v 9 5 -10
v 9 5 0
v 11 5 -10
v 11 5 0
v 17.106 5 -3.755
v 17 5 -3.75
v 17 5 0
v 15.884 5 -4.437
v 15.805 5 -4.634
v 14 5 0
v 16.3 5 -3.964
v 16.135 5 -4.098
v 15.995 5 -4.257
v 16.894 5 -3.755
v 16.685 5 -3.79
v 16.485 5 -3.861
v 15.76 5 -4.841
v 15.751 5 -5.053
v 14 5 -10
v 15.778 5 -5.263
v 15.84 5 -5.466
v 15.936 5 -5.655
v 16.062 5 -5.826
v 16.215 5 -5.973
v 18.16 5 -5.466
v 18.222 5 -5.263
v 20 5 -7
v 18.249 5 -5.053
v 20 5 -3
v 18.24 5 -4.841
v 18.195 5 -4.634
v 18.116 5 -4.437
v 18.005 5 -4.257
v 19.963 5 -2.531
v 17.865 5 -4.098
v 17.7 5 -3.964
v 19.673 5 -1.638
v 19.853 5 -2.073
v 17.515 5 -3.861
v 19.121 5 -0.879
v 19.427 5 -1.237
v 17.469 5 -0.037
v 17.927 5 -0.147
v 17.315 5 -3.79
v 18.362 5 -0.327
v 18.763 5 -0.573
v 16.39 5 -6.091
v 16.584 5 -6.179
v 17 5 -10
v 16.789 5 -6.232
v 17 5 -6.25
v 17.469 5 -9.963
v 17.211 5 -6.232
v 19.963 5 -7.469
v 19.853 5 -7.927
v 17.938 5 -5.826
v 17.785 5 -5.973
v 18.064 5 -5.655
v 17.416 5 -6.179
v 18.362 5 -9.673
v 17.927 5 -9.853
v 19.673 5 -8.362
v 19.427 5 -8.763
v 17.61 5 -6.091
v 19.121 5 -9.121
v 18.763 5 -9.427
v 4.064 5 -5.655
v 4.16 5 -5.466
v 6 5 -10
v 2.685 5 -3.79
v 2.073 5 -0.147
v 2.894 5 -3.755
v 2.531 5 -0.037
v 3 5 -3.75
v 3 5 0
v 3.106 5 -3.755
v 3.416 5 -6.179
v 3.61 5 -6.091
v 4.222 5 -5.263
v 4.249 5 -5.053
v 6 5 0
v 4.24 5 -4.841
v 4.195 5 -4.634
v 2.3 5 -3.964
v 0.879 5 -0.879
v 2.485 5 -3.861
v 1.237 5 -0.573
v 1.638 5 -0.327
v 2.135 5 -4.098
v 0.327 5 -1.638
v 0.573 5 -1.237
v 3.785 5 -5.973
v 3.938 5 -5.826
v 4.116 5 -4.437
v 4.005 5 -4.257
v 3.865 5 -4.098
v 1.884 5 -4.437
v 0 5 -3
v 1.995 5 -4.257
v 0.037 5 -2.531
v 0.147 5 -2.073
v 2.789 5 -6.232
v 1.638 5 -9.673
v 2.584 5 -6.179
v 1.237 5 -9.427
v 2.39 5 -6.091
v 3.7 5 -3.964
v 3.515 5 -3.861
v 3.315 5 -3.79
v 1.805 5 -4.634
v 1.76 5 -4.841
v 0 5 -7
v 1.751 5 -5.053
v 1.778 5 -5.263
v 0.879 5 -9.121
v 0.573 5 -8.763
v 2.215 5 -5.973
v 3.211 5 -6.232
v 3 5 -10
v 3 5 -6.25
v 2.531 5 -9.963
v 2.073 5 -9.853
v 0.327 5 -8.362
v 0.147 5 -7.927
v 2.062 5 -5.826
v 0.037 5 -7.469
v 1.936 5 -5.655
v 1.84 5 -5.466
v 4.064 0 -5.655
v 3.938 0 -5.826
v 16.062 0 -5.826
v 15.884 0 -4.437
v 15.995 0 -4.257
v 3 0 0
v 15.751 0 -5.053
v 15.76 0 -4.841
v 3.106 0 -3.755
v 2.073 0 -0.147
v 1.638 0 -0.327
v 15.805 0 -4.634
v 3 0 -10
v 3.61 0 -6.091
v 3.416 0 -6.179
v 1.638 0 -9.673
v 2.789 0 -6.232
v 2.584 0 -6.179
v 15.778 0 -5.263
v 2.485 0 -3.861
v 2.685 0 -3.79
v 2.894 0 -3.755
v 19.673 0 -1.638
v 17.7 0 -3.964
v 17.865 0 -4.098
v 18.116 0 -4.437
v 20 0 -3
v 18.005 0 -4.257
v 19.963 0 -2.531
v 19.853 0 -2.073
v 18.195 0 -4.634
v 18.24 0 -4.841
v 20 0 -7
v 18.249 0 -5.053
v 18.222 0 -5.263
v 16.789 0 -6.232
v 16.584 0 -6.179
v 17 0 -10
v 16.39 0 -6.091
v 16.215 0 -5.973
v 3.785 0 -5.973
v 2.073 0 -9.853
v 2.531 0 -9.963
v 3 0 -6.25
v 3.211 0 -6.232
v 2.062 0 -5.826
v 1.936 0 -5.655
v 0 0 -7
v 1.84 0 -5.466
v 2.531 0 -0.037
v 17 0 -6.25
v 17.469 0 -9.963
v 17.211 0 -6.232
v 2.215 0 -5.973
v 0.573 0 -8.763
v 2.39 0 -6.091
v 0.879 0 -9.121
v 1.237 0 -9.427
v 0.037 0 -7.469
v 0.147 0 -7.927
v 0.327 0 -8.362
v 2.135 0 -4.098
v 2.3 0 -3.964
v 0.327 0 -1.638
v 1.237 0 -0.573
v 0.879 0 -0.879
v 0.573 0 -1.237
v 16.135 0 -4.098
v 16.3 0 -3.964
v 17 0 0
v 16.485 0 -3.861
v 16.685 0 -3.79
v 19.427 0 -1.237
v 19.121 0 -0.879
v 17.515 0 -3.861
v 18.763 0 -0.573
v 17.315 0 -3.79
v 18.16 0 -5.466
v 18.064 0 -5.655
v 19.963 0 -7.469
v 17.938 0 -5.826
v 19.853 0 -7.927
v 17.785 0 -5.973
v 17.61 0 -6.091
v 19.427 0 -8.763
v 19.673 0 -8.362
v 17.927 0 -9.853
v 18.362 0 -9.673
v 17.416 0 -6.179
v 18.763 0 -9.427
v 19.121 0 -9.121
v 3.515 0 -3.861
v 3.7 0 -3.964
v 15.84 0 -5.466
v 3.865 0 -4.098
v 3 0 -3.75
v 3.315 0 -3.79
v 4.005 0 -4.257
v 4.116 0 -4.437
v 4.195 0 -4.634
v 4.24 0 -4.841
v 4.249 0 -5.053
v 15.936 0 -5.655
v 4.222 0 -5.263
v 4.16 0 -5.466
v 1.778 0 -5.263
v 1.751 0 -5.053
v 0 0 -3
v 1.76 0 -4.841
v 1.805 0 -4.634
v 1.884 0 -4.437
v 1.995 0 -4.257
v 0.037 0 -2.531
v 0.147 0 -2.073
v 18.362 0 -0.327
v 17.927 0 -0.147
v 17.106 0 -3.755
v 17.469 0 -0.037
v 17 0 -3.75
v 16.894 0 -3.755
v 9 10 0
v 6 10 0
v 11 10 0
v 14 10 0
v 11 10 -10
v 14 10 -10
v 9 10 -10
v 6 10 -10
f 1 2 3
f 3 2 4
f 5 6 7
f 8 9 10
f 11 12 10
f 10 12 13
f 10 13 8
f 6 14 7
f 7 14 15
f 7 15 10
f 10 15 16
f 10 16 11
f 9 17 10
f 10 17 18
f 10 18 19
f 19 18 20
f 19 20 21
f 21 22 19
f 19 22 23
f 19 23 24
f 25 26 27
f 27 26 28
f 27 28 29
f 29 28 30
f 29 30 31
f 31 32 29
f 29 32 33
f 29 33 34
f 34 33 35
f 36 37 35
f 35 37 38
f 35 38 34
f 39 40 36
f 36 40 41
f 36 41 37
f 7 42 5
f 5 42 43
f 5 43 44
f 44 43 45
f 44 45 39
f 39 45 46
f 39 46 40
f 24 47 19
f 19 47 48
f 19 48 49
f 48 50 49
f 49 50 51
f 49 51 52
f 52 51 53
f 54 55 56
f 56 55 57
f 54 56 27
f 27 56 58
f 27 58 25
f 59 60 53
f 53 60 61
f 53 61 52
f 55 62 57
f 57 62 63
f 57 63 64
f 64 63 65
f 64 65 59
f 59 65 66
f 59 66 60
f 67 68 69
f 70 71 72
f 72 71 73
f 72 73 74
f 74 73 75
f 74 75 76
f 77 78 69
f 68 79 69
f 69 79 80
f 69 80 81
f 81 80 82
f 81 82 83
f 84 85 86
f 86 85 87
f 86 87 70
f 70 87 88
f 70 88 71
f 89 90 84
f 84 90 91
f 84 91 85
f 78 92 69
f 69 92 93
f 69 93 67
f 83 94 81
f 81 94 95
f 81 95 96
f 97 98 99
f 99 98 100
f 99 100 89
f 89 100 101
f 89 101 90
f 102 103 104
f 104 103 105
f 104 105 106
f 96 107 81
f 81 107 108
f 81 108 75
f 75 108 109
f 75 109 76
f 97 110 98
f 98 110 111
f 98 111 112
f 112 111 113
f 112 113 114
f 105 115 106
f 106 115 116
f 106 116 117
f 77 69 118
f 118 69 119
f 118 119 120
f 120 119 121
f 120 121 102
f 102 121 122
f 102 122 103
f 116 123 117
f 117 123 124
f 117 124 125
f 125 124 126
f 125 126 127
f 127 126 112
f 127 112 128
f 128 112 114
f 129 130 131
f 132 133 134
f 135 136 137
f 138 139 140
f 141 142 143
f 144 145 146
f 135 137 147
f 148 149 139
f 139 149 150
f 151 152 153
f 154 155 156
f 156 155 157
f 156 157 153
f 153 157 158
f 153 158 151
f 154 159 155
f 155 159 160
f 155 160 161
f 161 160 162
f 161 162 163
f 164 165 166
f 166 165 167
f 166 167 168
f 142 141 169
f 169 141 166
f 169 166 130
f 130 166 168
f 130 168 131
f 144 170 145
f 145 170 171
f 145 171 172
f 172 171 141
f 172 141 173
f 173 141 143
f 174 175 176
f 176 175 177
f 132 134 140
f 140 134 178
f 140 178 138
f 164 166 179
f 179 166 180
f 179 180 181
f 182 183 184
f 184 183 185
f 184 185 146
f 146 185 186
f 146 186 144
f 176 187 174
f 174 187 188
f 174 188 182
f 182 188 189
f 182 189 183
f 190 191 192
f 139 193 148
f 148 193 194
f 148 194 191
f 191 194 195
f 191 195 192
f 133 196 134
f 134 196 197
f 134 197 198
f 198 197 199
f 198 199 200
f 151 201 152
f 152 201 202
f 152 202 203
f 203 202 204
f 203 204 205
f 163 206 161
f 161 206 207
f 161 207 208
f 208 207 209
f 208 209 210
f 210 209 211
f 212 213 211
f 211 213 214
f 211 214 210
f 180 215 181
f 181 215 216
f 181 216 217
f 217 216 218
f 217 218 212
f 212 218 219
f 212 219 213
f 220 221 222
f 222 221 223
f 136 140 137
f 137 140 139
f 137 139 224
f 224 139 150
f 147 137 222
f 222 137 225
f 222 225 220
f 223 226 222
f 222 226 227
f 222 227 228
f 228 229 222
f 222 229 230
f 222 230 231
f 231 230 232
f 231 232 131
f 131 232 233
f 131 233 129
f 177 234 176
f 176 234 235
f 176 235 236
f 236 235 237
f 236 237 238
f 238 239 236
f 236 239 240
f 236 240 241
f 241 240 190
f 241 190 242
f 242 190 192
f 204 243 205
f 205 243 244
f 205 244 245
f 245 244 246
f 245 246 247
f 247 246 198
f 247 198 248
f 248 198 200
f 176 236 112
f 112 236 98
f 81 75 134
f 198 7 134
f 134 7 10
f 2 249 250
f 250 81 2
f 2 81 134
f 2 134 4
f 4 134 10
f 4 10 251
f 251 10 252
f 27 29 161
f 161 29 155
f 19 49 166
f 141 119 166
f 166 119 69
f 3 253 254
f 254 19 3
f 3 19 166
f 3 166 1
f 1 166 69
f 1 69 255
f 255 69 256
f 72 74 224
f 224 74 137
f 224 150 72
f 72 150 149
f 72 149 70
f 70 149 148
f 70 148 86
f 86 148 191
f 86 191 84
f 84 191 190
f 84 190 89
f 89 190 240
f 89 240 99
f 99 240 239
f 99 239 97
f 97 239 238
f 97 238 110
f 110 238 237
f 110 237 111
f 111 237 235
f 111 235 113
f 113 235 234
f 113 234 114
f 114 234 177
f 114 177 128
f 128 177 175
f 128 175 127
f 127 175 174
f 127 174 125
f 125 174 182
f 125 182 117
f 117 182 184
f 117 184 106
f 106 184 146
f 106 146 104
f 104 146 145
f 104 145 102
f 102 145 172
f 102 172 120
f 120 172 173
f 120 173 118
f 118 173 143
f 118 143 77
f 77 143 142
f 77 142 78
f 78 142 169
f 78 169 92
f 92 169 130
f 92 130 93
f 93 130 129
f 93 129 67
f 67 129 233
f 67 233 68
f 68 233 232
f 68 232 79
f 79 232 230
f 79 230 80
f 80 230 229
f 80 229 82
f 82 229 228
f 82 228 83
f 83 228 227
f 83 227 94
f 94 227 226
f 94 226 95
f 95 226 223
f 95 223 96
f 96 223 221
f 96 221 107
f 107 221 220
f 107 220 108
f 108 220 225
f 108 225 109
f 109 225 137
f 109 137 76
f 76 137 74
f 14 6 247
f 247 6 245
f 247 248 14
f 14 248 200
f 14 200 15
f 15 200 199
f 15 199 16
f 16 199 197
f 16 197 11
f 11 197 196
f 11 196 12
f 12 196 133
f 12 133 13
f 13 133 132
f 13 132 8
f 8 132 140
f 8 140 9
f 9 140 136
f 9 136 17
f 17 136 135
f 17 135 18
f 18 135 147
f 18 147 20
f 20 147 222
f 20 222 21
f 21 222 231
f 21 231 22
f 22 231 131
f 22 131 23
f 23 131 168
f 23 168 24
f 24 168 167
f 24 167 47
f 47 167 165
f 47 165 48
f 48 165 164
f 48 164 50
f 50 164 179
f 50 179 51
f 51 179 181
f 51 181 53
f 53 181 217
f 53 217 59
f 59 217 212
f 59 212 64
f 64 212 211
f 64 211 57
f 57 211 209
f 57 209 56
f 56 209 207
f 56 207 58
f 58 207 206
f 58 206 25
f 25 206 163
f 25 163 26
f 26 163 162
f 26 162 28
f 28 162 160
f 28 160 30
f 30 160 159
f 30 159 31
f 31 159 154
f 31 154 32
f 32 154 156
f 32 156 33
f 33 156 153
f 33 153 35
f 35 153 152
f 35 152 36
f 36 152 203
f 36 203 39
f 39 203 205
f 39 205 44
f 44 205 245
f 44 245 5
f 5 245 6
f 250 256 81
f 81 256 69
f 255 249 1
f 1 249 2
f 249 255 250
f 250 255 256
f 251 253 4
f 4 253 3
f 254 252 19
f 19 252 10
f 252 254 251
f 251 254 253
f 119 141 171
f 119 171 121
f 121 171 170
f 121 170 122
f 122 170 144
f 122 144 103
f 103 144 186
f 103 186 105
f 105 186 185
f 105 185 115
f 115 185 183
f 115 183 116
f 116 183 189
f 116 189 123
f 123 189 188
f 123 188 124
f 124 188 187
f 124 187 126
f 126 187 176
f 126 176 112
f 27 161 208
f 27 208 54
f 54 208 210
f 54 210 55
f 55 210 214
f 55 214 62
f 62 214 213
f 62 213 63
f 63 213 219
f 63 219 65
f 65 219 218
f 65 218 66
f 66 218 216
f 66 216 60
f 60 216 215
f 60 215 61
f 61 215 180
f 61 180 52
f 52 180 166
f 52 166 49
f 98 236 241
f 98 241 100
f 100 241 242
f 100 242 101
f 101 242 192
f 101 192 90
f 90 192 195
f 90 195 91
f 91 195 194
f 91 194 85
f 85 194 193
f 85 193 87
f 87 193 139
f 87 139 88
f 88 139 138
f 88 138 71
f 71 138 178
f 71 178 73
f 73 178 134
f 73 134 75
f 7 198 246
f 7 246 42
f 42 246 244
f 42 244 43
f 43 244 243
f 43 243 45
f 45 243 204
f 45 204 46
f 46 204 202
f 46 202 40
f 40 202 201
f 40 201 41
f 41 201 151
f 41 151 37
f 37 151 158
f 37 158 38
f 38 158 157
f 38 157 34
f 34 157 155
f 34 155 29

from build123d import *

# Parameters (mm, degrees)
SKETCH1_W           = 20
SKETCH1_H           = 10
SKETCH1_R           = 1.25
BOSS_EXTRUDE1_DEPTH = 5
SKETCH2_W           = 3
SKETCH2_H           = 10
BOSS_EXTRUDE2_DEPTH = 5
FILLET1_R           = 3


with BuildPart() as part:
    # Sketch1 → Boss-Extrude1 (new body)
    with BuildSketch(Plane(origin=(0, 0, 0), x_dir=(1, 0, 0), z_dir=(0, 1, 0))):
        with Locations((10, 5)):
            Rectangle(SKETCH1_W, SKETCH1_H)
        with Locations((3, 5)):
            Circle(SKETCH1_R, mode=Mode.SUBTRACT)
        with Locations((17, 5)):
            Circle(SKETCH1_R, mode=Mode.SUBTRACT)
    extrude(amount=BOSS_EXTRUDE1_DEPTH)

    # Sketch2 → Boss-Extrude2 (add)
    with BuildSketch(Plane(origin=(0, 5, 0), x_dir=(1, 0, 0), z_dir=(0, 1, 0))):
        with Locations((7.5, 5)):
            Rectangle(SKETCH2_W, SKETCH2_H)
        with Locations((12.5, 5)):
            Rectangle(SKETCH2_W, SKETCH2_H)
    extrude(amount=BOSS_EXTRUDE2_DEPTH)

    # Fillet1
    fillet1_edges = [part.edges().sort_by_distance(p)[0] for p in [
        (0, 2.5, -10),
        (20, 2.5, -10),
        (0, 2.5, 0),
        (20, 2.5, 0),
    ]]
    fillet(fillet1_edges, radius=FILLET1_R)


solid = part.part
